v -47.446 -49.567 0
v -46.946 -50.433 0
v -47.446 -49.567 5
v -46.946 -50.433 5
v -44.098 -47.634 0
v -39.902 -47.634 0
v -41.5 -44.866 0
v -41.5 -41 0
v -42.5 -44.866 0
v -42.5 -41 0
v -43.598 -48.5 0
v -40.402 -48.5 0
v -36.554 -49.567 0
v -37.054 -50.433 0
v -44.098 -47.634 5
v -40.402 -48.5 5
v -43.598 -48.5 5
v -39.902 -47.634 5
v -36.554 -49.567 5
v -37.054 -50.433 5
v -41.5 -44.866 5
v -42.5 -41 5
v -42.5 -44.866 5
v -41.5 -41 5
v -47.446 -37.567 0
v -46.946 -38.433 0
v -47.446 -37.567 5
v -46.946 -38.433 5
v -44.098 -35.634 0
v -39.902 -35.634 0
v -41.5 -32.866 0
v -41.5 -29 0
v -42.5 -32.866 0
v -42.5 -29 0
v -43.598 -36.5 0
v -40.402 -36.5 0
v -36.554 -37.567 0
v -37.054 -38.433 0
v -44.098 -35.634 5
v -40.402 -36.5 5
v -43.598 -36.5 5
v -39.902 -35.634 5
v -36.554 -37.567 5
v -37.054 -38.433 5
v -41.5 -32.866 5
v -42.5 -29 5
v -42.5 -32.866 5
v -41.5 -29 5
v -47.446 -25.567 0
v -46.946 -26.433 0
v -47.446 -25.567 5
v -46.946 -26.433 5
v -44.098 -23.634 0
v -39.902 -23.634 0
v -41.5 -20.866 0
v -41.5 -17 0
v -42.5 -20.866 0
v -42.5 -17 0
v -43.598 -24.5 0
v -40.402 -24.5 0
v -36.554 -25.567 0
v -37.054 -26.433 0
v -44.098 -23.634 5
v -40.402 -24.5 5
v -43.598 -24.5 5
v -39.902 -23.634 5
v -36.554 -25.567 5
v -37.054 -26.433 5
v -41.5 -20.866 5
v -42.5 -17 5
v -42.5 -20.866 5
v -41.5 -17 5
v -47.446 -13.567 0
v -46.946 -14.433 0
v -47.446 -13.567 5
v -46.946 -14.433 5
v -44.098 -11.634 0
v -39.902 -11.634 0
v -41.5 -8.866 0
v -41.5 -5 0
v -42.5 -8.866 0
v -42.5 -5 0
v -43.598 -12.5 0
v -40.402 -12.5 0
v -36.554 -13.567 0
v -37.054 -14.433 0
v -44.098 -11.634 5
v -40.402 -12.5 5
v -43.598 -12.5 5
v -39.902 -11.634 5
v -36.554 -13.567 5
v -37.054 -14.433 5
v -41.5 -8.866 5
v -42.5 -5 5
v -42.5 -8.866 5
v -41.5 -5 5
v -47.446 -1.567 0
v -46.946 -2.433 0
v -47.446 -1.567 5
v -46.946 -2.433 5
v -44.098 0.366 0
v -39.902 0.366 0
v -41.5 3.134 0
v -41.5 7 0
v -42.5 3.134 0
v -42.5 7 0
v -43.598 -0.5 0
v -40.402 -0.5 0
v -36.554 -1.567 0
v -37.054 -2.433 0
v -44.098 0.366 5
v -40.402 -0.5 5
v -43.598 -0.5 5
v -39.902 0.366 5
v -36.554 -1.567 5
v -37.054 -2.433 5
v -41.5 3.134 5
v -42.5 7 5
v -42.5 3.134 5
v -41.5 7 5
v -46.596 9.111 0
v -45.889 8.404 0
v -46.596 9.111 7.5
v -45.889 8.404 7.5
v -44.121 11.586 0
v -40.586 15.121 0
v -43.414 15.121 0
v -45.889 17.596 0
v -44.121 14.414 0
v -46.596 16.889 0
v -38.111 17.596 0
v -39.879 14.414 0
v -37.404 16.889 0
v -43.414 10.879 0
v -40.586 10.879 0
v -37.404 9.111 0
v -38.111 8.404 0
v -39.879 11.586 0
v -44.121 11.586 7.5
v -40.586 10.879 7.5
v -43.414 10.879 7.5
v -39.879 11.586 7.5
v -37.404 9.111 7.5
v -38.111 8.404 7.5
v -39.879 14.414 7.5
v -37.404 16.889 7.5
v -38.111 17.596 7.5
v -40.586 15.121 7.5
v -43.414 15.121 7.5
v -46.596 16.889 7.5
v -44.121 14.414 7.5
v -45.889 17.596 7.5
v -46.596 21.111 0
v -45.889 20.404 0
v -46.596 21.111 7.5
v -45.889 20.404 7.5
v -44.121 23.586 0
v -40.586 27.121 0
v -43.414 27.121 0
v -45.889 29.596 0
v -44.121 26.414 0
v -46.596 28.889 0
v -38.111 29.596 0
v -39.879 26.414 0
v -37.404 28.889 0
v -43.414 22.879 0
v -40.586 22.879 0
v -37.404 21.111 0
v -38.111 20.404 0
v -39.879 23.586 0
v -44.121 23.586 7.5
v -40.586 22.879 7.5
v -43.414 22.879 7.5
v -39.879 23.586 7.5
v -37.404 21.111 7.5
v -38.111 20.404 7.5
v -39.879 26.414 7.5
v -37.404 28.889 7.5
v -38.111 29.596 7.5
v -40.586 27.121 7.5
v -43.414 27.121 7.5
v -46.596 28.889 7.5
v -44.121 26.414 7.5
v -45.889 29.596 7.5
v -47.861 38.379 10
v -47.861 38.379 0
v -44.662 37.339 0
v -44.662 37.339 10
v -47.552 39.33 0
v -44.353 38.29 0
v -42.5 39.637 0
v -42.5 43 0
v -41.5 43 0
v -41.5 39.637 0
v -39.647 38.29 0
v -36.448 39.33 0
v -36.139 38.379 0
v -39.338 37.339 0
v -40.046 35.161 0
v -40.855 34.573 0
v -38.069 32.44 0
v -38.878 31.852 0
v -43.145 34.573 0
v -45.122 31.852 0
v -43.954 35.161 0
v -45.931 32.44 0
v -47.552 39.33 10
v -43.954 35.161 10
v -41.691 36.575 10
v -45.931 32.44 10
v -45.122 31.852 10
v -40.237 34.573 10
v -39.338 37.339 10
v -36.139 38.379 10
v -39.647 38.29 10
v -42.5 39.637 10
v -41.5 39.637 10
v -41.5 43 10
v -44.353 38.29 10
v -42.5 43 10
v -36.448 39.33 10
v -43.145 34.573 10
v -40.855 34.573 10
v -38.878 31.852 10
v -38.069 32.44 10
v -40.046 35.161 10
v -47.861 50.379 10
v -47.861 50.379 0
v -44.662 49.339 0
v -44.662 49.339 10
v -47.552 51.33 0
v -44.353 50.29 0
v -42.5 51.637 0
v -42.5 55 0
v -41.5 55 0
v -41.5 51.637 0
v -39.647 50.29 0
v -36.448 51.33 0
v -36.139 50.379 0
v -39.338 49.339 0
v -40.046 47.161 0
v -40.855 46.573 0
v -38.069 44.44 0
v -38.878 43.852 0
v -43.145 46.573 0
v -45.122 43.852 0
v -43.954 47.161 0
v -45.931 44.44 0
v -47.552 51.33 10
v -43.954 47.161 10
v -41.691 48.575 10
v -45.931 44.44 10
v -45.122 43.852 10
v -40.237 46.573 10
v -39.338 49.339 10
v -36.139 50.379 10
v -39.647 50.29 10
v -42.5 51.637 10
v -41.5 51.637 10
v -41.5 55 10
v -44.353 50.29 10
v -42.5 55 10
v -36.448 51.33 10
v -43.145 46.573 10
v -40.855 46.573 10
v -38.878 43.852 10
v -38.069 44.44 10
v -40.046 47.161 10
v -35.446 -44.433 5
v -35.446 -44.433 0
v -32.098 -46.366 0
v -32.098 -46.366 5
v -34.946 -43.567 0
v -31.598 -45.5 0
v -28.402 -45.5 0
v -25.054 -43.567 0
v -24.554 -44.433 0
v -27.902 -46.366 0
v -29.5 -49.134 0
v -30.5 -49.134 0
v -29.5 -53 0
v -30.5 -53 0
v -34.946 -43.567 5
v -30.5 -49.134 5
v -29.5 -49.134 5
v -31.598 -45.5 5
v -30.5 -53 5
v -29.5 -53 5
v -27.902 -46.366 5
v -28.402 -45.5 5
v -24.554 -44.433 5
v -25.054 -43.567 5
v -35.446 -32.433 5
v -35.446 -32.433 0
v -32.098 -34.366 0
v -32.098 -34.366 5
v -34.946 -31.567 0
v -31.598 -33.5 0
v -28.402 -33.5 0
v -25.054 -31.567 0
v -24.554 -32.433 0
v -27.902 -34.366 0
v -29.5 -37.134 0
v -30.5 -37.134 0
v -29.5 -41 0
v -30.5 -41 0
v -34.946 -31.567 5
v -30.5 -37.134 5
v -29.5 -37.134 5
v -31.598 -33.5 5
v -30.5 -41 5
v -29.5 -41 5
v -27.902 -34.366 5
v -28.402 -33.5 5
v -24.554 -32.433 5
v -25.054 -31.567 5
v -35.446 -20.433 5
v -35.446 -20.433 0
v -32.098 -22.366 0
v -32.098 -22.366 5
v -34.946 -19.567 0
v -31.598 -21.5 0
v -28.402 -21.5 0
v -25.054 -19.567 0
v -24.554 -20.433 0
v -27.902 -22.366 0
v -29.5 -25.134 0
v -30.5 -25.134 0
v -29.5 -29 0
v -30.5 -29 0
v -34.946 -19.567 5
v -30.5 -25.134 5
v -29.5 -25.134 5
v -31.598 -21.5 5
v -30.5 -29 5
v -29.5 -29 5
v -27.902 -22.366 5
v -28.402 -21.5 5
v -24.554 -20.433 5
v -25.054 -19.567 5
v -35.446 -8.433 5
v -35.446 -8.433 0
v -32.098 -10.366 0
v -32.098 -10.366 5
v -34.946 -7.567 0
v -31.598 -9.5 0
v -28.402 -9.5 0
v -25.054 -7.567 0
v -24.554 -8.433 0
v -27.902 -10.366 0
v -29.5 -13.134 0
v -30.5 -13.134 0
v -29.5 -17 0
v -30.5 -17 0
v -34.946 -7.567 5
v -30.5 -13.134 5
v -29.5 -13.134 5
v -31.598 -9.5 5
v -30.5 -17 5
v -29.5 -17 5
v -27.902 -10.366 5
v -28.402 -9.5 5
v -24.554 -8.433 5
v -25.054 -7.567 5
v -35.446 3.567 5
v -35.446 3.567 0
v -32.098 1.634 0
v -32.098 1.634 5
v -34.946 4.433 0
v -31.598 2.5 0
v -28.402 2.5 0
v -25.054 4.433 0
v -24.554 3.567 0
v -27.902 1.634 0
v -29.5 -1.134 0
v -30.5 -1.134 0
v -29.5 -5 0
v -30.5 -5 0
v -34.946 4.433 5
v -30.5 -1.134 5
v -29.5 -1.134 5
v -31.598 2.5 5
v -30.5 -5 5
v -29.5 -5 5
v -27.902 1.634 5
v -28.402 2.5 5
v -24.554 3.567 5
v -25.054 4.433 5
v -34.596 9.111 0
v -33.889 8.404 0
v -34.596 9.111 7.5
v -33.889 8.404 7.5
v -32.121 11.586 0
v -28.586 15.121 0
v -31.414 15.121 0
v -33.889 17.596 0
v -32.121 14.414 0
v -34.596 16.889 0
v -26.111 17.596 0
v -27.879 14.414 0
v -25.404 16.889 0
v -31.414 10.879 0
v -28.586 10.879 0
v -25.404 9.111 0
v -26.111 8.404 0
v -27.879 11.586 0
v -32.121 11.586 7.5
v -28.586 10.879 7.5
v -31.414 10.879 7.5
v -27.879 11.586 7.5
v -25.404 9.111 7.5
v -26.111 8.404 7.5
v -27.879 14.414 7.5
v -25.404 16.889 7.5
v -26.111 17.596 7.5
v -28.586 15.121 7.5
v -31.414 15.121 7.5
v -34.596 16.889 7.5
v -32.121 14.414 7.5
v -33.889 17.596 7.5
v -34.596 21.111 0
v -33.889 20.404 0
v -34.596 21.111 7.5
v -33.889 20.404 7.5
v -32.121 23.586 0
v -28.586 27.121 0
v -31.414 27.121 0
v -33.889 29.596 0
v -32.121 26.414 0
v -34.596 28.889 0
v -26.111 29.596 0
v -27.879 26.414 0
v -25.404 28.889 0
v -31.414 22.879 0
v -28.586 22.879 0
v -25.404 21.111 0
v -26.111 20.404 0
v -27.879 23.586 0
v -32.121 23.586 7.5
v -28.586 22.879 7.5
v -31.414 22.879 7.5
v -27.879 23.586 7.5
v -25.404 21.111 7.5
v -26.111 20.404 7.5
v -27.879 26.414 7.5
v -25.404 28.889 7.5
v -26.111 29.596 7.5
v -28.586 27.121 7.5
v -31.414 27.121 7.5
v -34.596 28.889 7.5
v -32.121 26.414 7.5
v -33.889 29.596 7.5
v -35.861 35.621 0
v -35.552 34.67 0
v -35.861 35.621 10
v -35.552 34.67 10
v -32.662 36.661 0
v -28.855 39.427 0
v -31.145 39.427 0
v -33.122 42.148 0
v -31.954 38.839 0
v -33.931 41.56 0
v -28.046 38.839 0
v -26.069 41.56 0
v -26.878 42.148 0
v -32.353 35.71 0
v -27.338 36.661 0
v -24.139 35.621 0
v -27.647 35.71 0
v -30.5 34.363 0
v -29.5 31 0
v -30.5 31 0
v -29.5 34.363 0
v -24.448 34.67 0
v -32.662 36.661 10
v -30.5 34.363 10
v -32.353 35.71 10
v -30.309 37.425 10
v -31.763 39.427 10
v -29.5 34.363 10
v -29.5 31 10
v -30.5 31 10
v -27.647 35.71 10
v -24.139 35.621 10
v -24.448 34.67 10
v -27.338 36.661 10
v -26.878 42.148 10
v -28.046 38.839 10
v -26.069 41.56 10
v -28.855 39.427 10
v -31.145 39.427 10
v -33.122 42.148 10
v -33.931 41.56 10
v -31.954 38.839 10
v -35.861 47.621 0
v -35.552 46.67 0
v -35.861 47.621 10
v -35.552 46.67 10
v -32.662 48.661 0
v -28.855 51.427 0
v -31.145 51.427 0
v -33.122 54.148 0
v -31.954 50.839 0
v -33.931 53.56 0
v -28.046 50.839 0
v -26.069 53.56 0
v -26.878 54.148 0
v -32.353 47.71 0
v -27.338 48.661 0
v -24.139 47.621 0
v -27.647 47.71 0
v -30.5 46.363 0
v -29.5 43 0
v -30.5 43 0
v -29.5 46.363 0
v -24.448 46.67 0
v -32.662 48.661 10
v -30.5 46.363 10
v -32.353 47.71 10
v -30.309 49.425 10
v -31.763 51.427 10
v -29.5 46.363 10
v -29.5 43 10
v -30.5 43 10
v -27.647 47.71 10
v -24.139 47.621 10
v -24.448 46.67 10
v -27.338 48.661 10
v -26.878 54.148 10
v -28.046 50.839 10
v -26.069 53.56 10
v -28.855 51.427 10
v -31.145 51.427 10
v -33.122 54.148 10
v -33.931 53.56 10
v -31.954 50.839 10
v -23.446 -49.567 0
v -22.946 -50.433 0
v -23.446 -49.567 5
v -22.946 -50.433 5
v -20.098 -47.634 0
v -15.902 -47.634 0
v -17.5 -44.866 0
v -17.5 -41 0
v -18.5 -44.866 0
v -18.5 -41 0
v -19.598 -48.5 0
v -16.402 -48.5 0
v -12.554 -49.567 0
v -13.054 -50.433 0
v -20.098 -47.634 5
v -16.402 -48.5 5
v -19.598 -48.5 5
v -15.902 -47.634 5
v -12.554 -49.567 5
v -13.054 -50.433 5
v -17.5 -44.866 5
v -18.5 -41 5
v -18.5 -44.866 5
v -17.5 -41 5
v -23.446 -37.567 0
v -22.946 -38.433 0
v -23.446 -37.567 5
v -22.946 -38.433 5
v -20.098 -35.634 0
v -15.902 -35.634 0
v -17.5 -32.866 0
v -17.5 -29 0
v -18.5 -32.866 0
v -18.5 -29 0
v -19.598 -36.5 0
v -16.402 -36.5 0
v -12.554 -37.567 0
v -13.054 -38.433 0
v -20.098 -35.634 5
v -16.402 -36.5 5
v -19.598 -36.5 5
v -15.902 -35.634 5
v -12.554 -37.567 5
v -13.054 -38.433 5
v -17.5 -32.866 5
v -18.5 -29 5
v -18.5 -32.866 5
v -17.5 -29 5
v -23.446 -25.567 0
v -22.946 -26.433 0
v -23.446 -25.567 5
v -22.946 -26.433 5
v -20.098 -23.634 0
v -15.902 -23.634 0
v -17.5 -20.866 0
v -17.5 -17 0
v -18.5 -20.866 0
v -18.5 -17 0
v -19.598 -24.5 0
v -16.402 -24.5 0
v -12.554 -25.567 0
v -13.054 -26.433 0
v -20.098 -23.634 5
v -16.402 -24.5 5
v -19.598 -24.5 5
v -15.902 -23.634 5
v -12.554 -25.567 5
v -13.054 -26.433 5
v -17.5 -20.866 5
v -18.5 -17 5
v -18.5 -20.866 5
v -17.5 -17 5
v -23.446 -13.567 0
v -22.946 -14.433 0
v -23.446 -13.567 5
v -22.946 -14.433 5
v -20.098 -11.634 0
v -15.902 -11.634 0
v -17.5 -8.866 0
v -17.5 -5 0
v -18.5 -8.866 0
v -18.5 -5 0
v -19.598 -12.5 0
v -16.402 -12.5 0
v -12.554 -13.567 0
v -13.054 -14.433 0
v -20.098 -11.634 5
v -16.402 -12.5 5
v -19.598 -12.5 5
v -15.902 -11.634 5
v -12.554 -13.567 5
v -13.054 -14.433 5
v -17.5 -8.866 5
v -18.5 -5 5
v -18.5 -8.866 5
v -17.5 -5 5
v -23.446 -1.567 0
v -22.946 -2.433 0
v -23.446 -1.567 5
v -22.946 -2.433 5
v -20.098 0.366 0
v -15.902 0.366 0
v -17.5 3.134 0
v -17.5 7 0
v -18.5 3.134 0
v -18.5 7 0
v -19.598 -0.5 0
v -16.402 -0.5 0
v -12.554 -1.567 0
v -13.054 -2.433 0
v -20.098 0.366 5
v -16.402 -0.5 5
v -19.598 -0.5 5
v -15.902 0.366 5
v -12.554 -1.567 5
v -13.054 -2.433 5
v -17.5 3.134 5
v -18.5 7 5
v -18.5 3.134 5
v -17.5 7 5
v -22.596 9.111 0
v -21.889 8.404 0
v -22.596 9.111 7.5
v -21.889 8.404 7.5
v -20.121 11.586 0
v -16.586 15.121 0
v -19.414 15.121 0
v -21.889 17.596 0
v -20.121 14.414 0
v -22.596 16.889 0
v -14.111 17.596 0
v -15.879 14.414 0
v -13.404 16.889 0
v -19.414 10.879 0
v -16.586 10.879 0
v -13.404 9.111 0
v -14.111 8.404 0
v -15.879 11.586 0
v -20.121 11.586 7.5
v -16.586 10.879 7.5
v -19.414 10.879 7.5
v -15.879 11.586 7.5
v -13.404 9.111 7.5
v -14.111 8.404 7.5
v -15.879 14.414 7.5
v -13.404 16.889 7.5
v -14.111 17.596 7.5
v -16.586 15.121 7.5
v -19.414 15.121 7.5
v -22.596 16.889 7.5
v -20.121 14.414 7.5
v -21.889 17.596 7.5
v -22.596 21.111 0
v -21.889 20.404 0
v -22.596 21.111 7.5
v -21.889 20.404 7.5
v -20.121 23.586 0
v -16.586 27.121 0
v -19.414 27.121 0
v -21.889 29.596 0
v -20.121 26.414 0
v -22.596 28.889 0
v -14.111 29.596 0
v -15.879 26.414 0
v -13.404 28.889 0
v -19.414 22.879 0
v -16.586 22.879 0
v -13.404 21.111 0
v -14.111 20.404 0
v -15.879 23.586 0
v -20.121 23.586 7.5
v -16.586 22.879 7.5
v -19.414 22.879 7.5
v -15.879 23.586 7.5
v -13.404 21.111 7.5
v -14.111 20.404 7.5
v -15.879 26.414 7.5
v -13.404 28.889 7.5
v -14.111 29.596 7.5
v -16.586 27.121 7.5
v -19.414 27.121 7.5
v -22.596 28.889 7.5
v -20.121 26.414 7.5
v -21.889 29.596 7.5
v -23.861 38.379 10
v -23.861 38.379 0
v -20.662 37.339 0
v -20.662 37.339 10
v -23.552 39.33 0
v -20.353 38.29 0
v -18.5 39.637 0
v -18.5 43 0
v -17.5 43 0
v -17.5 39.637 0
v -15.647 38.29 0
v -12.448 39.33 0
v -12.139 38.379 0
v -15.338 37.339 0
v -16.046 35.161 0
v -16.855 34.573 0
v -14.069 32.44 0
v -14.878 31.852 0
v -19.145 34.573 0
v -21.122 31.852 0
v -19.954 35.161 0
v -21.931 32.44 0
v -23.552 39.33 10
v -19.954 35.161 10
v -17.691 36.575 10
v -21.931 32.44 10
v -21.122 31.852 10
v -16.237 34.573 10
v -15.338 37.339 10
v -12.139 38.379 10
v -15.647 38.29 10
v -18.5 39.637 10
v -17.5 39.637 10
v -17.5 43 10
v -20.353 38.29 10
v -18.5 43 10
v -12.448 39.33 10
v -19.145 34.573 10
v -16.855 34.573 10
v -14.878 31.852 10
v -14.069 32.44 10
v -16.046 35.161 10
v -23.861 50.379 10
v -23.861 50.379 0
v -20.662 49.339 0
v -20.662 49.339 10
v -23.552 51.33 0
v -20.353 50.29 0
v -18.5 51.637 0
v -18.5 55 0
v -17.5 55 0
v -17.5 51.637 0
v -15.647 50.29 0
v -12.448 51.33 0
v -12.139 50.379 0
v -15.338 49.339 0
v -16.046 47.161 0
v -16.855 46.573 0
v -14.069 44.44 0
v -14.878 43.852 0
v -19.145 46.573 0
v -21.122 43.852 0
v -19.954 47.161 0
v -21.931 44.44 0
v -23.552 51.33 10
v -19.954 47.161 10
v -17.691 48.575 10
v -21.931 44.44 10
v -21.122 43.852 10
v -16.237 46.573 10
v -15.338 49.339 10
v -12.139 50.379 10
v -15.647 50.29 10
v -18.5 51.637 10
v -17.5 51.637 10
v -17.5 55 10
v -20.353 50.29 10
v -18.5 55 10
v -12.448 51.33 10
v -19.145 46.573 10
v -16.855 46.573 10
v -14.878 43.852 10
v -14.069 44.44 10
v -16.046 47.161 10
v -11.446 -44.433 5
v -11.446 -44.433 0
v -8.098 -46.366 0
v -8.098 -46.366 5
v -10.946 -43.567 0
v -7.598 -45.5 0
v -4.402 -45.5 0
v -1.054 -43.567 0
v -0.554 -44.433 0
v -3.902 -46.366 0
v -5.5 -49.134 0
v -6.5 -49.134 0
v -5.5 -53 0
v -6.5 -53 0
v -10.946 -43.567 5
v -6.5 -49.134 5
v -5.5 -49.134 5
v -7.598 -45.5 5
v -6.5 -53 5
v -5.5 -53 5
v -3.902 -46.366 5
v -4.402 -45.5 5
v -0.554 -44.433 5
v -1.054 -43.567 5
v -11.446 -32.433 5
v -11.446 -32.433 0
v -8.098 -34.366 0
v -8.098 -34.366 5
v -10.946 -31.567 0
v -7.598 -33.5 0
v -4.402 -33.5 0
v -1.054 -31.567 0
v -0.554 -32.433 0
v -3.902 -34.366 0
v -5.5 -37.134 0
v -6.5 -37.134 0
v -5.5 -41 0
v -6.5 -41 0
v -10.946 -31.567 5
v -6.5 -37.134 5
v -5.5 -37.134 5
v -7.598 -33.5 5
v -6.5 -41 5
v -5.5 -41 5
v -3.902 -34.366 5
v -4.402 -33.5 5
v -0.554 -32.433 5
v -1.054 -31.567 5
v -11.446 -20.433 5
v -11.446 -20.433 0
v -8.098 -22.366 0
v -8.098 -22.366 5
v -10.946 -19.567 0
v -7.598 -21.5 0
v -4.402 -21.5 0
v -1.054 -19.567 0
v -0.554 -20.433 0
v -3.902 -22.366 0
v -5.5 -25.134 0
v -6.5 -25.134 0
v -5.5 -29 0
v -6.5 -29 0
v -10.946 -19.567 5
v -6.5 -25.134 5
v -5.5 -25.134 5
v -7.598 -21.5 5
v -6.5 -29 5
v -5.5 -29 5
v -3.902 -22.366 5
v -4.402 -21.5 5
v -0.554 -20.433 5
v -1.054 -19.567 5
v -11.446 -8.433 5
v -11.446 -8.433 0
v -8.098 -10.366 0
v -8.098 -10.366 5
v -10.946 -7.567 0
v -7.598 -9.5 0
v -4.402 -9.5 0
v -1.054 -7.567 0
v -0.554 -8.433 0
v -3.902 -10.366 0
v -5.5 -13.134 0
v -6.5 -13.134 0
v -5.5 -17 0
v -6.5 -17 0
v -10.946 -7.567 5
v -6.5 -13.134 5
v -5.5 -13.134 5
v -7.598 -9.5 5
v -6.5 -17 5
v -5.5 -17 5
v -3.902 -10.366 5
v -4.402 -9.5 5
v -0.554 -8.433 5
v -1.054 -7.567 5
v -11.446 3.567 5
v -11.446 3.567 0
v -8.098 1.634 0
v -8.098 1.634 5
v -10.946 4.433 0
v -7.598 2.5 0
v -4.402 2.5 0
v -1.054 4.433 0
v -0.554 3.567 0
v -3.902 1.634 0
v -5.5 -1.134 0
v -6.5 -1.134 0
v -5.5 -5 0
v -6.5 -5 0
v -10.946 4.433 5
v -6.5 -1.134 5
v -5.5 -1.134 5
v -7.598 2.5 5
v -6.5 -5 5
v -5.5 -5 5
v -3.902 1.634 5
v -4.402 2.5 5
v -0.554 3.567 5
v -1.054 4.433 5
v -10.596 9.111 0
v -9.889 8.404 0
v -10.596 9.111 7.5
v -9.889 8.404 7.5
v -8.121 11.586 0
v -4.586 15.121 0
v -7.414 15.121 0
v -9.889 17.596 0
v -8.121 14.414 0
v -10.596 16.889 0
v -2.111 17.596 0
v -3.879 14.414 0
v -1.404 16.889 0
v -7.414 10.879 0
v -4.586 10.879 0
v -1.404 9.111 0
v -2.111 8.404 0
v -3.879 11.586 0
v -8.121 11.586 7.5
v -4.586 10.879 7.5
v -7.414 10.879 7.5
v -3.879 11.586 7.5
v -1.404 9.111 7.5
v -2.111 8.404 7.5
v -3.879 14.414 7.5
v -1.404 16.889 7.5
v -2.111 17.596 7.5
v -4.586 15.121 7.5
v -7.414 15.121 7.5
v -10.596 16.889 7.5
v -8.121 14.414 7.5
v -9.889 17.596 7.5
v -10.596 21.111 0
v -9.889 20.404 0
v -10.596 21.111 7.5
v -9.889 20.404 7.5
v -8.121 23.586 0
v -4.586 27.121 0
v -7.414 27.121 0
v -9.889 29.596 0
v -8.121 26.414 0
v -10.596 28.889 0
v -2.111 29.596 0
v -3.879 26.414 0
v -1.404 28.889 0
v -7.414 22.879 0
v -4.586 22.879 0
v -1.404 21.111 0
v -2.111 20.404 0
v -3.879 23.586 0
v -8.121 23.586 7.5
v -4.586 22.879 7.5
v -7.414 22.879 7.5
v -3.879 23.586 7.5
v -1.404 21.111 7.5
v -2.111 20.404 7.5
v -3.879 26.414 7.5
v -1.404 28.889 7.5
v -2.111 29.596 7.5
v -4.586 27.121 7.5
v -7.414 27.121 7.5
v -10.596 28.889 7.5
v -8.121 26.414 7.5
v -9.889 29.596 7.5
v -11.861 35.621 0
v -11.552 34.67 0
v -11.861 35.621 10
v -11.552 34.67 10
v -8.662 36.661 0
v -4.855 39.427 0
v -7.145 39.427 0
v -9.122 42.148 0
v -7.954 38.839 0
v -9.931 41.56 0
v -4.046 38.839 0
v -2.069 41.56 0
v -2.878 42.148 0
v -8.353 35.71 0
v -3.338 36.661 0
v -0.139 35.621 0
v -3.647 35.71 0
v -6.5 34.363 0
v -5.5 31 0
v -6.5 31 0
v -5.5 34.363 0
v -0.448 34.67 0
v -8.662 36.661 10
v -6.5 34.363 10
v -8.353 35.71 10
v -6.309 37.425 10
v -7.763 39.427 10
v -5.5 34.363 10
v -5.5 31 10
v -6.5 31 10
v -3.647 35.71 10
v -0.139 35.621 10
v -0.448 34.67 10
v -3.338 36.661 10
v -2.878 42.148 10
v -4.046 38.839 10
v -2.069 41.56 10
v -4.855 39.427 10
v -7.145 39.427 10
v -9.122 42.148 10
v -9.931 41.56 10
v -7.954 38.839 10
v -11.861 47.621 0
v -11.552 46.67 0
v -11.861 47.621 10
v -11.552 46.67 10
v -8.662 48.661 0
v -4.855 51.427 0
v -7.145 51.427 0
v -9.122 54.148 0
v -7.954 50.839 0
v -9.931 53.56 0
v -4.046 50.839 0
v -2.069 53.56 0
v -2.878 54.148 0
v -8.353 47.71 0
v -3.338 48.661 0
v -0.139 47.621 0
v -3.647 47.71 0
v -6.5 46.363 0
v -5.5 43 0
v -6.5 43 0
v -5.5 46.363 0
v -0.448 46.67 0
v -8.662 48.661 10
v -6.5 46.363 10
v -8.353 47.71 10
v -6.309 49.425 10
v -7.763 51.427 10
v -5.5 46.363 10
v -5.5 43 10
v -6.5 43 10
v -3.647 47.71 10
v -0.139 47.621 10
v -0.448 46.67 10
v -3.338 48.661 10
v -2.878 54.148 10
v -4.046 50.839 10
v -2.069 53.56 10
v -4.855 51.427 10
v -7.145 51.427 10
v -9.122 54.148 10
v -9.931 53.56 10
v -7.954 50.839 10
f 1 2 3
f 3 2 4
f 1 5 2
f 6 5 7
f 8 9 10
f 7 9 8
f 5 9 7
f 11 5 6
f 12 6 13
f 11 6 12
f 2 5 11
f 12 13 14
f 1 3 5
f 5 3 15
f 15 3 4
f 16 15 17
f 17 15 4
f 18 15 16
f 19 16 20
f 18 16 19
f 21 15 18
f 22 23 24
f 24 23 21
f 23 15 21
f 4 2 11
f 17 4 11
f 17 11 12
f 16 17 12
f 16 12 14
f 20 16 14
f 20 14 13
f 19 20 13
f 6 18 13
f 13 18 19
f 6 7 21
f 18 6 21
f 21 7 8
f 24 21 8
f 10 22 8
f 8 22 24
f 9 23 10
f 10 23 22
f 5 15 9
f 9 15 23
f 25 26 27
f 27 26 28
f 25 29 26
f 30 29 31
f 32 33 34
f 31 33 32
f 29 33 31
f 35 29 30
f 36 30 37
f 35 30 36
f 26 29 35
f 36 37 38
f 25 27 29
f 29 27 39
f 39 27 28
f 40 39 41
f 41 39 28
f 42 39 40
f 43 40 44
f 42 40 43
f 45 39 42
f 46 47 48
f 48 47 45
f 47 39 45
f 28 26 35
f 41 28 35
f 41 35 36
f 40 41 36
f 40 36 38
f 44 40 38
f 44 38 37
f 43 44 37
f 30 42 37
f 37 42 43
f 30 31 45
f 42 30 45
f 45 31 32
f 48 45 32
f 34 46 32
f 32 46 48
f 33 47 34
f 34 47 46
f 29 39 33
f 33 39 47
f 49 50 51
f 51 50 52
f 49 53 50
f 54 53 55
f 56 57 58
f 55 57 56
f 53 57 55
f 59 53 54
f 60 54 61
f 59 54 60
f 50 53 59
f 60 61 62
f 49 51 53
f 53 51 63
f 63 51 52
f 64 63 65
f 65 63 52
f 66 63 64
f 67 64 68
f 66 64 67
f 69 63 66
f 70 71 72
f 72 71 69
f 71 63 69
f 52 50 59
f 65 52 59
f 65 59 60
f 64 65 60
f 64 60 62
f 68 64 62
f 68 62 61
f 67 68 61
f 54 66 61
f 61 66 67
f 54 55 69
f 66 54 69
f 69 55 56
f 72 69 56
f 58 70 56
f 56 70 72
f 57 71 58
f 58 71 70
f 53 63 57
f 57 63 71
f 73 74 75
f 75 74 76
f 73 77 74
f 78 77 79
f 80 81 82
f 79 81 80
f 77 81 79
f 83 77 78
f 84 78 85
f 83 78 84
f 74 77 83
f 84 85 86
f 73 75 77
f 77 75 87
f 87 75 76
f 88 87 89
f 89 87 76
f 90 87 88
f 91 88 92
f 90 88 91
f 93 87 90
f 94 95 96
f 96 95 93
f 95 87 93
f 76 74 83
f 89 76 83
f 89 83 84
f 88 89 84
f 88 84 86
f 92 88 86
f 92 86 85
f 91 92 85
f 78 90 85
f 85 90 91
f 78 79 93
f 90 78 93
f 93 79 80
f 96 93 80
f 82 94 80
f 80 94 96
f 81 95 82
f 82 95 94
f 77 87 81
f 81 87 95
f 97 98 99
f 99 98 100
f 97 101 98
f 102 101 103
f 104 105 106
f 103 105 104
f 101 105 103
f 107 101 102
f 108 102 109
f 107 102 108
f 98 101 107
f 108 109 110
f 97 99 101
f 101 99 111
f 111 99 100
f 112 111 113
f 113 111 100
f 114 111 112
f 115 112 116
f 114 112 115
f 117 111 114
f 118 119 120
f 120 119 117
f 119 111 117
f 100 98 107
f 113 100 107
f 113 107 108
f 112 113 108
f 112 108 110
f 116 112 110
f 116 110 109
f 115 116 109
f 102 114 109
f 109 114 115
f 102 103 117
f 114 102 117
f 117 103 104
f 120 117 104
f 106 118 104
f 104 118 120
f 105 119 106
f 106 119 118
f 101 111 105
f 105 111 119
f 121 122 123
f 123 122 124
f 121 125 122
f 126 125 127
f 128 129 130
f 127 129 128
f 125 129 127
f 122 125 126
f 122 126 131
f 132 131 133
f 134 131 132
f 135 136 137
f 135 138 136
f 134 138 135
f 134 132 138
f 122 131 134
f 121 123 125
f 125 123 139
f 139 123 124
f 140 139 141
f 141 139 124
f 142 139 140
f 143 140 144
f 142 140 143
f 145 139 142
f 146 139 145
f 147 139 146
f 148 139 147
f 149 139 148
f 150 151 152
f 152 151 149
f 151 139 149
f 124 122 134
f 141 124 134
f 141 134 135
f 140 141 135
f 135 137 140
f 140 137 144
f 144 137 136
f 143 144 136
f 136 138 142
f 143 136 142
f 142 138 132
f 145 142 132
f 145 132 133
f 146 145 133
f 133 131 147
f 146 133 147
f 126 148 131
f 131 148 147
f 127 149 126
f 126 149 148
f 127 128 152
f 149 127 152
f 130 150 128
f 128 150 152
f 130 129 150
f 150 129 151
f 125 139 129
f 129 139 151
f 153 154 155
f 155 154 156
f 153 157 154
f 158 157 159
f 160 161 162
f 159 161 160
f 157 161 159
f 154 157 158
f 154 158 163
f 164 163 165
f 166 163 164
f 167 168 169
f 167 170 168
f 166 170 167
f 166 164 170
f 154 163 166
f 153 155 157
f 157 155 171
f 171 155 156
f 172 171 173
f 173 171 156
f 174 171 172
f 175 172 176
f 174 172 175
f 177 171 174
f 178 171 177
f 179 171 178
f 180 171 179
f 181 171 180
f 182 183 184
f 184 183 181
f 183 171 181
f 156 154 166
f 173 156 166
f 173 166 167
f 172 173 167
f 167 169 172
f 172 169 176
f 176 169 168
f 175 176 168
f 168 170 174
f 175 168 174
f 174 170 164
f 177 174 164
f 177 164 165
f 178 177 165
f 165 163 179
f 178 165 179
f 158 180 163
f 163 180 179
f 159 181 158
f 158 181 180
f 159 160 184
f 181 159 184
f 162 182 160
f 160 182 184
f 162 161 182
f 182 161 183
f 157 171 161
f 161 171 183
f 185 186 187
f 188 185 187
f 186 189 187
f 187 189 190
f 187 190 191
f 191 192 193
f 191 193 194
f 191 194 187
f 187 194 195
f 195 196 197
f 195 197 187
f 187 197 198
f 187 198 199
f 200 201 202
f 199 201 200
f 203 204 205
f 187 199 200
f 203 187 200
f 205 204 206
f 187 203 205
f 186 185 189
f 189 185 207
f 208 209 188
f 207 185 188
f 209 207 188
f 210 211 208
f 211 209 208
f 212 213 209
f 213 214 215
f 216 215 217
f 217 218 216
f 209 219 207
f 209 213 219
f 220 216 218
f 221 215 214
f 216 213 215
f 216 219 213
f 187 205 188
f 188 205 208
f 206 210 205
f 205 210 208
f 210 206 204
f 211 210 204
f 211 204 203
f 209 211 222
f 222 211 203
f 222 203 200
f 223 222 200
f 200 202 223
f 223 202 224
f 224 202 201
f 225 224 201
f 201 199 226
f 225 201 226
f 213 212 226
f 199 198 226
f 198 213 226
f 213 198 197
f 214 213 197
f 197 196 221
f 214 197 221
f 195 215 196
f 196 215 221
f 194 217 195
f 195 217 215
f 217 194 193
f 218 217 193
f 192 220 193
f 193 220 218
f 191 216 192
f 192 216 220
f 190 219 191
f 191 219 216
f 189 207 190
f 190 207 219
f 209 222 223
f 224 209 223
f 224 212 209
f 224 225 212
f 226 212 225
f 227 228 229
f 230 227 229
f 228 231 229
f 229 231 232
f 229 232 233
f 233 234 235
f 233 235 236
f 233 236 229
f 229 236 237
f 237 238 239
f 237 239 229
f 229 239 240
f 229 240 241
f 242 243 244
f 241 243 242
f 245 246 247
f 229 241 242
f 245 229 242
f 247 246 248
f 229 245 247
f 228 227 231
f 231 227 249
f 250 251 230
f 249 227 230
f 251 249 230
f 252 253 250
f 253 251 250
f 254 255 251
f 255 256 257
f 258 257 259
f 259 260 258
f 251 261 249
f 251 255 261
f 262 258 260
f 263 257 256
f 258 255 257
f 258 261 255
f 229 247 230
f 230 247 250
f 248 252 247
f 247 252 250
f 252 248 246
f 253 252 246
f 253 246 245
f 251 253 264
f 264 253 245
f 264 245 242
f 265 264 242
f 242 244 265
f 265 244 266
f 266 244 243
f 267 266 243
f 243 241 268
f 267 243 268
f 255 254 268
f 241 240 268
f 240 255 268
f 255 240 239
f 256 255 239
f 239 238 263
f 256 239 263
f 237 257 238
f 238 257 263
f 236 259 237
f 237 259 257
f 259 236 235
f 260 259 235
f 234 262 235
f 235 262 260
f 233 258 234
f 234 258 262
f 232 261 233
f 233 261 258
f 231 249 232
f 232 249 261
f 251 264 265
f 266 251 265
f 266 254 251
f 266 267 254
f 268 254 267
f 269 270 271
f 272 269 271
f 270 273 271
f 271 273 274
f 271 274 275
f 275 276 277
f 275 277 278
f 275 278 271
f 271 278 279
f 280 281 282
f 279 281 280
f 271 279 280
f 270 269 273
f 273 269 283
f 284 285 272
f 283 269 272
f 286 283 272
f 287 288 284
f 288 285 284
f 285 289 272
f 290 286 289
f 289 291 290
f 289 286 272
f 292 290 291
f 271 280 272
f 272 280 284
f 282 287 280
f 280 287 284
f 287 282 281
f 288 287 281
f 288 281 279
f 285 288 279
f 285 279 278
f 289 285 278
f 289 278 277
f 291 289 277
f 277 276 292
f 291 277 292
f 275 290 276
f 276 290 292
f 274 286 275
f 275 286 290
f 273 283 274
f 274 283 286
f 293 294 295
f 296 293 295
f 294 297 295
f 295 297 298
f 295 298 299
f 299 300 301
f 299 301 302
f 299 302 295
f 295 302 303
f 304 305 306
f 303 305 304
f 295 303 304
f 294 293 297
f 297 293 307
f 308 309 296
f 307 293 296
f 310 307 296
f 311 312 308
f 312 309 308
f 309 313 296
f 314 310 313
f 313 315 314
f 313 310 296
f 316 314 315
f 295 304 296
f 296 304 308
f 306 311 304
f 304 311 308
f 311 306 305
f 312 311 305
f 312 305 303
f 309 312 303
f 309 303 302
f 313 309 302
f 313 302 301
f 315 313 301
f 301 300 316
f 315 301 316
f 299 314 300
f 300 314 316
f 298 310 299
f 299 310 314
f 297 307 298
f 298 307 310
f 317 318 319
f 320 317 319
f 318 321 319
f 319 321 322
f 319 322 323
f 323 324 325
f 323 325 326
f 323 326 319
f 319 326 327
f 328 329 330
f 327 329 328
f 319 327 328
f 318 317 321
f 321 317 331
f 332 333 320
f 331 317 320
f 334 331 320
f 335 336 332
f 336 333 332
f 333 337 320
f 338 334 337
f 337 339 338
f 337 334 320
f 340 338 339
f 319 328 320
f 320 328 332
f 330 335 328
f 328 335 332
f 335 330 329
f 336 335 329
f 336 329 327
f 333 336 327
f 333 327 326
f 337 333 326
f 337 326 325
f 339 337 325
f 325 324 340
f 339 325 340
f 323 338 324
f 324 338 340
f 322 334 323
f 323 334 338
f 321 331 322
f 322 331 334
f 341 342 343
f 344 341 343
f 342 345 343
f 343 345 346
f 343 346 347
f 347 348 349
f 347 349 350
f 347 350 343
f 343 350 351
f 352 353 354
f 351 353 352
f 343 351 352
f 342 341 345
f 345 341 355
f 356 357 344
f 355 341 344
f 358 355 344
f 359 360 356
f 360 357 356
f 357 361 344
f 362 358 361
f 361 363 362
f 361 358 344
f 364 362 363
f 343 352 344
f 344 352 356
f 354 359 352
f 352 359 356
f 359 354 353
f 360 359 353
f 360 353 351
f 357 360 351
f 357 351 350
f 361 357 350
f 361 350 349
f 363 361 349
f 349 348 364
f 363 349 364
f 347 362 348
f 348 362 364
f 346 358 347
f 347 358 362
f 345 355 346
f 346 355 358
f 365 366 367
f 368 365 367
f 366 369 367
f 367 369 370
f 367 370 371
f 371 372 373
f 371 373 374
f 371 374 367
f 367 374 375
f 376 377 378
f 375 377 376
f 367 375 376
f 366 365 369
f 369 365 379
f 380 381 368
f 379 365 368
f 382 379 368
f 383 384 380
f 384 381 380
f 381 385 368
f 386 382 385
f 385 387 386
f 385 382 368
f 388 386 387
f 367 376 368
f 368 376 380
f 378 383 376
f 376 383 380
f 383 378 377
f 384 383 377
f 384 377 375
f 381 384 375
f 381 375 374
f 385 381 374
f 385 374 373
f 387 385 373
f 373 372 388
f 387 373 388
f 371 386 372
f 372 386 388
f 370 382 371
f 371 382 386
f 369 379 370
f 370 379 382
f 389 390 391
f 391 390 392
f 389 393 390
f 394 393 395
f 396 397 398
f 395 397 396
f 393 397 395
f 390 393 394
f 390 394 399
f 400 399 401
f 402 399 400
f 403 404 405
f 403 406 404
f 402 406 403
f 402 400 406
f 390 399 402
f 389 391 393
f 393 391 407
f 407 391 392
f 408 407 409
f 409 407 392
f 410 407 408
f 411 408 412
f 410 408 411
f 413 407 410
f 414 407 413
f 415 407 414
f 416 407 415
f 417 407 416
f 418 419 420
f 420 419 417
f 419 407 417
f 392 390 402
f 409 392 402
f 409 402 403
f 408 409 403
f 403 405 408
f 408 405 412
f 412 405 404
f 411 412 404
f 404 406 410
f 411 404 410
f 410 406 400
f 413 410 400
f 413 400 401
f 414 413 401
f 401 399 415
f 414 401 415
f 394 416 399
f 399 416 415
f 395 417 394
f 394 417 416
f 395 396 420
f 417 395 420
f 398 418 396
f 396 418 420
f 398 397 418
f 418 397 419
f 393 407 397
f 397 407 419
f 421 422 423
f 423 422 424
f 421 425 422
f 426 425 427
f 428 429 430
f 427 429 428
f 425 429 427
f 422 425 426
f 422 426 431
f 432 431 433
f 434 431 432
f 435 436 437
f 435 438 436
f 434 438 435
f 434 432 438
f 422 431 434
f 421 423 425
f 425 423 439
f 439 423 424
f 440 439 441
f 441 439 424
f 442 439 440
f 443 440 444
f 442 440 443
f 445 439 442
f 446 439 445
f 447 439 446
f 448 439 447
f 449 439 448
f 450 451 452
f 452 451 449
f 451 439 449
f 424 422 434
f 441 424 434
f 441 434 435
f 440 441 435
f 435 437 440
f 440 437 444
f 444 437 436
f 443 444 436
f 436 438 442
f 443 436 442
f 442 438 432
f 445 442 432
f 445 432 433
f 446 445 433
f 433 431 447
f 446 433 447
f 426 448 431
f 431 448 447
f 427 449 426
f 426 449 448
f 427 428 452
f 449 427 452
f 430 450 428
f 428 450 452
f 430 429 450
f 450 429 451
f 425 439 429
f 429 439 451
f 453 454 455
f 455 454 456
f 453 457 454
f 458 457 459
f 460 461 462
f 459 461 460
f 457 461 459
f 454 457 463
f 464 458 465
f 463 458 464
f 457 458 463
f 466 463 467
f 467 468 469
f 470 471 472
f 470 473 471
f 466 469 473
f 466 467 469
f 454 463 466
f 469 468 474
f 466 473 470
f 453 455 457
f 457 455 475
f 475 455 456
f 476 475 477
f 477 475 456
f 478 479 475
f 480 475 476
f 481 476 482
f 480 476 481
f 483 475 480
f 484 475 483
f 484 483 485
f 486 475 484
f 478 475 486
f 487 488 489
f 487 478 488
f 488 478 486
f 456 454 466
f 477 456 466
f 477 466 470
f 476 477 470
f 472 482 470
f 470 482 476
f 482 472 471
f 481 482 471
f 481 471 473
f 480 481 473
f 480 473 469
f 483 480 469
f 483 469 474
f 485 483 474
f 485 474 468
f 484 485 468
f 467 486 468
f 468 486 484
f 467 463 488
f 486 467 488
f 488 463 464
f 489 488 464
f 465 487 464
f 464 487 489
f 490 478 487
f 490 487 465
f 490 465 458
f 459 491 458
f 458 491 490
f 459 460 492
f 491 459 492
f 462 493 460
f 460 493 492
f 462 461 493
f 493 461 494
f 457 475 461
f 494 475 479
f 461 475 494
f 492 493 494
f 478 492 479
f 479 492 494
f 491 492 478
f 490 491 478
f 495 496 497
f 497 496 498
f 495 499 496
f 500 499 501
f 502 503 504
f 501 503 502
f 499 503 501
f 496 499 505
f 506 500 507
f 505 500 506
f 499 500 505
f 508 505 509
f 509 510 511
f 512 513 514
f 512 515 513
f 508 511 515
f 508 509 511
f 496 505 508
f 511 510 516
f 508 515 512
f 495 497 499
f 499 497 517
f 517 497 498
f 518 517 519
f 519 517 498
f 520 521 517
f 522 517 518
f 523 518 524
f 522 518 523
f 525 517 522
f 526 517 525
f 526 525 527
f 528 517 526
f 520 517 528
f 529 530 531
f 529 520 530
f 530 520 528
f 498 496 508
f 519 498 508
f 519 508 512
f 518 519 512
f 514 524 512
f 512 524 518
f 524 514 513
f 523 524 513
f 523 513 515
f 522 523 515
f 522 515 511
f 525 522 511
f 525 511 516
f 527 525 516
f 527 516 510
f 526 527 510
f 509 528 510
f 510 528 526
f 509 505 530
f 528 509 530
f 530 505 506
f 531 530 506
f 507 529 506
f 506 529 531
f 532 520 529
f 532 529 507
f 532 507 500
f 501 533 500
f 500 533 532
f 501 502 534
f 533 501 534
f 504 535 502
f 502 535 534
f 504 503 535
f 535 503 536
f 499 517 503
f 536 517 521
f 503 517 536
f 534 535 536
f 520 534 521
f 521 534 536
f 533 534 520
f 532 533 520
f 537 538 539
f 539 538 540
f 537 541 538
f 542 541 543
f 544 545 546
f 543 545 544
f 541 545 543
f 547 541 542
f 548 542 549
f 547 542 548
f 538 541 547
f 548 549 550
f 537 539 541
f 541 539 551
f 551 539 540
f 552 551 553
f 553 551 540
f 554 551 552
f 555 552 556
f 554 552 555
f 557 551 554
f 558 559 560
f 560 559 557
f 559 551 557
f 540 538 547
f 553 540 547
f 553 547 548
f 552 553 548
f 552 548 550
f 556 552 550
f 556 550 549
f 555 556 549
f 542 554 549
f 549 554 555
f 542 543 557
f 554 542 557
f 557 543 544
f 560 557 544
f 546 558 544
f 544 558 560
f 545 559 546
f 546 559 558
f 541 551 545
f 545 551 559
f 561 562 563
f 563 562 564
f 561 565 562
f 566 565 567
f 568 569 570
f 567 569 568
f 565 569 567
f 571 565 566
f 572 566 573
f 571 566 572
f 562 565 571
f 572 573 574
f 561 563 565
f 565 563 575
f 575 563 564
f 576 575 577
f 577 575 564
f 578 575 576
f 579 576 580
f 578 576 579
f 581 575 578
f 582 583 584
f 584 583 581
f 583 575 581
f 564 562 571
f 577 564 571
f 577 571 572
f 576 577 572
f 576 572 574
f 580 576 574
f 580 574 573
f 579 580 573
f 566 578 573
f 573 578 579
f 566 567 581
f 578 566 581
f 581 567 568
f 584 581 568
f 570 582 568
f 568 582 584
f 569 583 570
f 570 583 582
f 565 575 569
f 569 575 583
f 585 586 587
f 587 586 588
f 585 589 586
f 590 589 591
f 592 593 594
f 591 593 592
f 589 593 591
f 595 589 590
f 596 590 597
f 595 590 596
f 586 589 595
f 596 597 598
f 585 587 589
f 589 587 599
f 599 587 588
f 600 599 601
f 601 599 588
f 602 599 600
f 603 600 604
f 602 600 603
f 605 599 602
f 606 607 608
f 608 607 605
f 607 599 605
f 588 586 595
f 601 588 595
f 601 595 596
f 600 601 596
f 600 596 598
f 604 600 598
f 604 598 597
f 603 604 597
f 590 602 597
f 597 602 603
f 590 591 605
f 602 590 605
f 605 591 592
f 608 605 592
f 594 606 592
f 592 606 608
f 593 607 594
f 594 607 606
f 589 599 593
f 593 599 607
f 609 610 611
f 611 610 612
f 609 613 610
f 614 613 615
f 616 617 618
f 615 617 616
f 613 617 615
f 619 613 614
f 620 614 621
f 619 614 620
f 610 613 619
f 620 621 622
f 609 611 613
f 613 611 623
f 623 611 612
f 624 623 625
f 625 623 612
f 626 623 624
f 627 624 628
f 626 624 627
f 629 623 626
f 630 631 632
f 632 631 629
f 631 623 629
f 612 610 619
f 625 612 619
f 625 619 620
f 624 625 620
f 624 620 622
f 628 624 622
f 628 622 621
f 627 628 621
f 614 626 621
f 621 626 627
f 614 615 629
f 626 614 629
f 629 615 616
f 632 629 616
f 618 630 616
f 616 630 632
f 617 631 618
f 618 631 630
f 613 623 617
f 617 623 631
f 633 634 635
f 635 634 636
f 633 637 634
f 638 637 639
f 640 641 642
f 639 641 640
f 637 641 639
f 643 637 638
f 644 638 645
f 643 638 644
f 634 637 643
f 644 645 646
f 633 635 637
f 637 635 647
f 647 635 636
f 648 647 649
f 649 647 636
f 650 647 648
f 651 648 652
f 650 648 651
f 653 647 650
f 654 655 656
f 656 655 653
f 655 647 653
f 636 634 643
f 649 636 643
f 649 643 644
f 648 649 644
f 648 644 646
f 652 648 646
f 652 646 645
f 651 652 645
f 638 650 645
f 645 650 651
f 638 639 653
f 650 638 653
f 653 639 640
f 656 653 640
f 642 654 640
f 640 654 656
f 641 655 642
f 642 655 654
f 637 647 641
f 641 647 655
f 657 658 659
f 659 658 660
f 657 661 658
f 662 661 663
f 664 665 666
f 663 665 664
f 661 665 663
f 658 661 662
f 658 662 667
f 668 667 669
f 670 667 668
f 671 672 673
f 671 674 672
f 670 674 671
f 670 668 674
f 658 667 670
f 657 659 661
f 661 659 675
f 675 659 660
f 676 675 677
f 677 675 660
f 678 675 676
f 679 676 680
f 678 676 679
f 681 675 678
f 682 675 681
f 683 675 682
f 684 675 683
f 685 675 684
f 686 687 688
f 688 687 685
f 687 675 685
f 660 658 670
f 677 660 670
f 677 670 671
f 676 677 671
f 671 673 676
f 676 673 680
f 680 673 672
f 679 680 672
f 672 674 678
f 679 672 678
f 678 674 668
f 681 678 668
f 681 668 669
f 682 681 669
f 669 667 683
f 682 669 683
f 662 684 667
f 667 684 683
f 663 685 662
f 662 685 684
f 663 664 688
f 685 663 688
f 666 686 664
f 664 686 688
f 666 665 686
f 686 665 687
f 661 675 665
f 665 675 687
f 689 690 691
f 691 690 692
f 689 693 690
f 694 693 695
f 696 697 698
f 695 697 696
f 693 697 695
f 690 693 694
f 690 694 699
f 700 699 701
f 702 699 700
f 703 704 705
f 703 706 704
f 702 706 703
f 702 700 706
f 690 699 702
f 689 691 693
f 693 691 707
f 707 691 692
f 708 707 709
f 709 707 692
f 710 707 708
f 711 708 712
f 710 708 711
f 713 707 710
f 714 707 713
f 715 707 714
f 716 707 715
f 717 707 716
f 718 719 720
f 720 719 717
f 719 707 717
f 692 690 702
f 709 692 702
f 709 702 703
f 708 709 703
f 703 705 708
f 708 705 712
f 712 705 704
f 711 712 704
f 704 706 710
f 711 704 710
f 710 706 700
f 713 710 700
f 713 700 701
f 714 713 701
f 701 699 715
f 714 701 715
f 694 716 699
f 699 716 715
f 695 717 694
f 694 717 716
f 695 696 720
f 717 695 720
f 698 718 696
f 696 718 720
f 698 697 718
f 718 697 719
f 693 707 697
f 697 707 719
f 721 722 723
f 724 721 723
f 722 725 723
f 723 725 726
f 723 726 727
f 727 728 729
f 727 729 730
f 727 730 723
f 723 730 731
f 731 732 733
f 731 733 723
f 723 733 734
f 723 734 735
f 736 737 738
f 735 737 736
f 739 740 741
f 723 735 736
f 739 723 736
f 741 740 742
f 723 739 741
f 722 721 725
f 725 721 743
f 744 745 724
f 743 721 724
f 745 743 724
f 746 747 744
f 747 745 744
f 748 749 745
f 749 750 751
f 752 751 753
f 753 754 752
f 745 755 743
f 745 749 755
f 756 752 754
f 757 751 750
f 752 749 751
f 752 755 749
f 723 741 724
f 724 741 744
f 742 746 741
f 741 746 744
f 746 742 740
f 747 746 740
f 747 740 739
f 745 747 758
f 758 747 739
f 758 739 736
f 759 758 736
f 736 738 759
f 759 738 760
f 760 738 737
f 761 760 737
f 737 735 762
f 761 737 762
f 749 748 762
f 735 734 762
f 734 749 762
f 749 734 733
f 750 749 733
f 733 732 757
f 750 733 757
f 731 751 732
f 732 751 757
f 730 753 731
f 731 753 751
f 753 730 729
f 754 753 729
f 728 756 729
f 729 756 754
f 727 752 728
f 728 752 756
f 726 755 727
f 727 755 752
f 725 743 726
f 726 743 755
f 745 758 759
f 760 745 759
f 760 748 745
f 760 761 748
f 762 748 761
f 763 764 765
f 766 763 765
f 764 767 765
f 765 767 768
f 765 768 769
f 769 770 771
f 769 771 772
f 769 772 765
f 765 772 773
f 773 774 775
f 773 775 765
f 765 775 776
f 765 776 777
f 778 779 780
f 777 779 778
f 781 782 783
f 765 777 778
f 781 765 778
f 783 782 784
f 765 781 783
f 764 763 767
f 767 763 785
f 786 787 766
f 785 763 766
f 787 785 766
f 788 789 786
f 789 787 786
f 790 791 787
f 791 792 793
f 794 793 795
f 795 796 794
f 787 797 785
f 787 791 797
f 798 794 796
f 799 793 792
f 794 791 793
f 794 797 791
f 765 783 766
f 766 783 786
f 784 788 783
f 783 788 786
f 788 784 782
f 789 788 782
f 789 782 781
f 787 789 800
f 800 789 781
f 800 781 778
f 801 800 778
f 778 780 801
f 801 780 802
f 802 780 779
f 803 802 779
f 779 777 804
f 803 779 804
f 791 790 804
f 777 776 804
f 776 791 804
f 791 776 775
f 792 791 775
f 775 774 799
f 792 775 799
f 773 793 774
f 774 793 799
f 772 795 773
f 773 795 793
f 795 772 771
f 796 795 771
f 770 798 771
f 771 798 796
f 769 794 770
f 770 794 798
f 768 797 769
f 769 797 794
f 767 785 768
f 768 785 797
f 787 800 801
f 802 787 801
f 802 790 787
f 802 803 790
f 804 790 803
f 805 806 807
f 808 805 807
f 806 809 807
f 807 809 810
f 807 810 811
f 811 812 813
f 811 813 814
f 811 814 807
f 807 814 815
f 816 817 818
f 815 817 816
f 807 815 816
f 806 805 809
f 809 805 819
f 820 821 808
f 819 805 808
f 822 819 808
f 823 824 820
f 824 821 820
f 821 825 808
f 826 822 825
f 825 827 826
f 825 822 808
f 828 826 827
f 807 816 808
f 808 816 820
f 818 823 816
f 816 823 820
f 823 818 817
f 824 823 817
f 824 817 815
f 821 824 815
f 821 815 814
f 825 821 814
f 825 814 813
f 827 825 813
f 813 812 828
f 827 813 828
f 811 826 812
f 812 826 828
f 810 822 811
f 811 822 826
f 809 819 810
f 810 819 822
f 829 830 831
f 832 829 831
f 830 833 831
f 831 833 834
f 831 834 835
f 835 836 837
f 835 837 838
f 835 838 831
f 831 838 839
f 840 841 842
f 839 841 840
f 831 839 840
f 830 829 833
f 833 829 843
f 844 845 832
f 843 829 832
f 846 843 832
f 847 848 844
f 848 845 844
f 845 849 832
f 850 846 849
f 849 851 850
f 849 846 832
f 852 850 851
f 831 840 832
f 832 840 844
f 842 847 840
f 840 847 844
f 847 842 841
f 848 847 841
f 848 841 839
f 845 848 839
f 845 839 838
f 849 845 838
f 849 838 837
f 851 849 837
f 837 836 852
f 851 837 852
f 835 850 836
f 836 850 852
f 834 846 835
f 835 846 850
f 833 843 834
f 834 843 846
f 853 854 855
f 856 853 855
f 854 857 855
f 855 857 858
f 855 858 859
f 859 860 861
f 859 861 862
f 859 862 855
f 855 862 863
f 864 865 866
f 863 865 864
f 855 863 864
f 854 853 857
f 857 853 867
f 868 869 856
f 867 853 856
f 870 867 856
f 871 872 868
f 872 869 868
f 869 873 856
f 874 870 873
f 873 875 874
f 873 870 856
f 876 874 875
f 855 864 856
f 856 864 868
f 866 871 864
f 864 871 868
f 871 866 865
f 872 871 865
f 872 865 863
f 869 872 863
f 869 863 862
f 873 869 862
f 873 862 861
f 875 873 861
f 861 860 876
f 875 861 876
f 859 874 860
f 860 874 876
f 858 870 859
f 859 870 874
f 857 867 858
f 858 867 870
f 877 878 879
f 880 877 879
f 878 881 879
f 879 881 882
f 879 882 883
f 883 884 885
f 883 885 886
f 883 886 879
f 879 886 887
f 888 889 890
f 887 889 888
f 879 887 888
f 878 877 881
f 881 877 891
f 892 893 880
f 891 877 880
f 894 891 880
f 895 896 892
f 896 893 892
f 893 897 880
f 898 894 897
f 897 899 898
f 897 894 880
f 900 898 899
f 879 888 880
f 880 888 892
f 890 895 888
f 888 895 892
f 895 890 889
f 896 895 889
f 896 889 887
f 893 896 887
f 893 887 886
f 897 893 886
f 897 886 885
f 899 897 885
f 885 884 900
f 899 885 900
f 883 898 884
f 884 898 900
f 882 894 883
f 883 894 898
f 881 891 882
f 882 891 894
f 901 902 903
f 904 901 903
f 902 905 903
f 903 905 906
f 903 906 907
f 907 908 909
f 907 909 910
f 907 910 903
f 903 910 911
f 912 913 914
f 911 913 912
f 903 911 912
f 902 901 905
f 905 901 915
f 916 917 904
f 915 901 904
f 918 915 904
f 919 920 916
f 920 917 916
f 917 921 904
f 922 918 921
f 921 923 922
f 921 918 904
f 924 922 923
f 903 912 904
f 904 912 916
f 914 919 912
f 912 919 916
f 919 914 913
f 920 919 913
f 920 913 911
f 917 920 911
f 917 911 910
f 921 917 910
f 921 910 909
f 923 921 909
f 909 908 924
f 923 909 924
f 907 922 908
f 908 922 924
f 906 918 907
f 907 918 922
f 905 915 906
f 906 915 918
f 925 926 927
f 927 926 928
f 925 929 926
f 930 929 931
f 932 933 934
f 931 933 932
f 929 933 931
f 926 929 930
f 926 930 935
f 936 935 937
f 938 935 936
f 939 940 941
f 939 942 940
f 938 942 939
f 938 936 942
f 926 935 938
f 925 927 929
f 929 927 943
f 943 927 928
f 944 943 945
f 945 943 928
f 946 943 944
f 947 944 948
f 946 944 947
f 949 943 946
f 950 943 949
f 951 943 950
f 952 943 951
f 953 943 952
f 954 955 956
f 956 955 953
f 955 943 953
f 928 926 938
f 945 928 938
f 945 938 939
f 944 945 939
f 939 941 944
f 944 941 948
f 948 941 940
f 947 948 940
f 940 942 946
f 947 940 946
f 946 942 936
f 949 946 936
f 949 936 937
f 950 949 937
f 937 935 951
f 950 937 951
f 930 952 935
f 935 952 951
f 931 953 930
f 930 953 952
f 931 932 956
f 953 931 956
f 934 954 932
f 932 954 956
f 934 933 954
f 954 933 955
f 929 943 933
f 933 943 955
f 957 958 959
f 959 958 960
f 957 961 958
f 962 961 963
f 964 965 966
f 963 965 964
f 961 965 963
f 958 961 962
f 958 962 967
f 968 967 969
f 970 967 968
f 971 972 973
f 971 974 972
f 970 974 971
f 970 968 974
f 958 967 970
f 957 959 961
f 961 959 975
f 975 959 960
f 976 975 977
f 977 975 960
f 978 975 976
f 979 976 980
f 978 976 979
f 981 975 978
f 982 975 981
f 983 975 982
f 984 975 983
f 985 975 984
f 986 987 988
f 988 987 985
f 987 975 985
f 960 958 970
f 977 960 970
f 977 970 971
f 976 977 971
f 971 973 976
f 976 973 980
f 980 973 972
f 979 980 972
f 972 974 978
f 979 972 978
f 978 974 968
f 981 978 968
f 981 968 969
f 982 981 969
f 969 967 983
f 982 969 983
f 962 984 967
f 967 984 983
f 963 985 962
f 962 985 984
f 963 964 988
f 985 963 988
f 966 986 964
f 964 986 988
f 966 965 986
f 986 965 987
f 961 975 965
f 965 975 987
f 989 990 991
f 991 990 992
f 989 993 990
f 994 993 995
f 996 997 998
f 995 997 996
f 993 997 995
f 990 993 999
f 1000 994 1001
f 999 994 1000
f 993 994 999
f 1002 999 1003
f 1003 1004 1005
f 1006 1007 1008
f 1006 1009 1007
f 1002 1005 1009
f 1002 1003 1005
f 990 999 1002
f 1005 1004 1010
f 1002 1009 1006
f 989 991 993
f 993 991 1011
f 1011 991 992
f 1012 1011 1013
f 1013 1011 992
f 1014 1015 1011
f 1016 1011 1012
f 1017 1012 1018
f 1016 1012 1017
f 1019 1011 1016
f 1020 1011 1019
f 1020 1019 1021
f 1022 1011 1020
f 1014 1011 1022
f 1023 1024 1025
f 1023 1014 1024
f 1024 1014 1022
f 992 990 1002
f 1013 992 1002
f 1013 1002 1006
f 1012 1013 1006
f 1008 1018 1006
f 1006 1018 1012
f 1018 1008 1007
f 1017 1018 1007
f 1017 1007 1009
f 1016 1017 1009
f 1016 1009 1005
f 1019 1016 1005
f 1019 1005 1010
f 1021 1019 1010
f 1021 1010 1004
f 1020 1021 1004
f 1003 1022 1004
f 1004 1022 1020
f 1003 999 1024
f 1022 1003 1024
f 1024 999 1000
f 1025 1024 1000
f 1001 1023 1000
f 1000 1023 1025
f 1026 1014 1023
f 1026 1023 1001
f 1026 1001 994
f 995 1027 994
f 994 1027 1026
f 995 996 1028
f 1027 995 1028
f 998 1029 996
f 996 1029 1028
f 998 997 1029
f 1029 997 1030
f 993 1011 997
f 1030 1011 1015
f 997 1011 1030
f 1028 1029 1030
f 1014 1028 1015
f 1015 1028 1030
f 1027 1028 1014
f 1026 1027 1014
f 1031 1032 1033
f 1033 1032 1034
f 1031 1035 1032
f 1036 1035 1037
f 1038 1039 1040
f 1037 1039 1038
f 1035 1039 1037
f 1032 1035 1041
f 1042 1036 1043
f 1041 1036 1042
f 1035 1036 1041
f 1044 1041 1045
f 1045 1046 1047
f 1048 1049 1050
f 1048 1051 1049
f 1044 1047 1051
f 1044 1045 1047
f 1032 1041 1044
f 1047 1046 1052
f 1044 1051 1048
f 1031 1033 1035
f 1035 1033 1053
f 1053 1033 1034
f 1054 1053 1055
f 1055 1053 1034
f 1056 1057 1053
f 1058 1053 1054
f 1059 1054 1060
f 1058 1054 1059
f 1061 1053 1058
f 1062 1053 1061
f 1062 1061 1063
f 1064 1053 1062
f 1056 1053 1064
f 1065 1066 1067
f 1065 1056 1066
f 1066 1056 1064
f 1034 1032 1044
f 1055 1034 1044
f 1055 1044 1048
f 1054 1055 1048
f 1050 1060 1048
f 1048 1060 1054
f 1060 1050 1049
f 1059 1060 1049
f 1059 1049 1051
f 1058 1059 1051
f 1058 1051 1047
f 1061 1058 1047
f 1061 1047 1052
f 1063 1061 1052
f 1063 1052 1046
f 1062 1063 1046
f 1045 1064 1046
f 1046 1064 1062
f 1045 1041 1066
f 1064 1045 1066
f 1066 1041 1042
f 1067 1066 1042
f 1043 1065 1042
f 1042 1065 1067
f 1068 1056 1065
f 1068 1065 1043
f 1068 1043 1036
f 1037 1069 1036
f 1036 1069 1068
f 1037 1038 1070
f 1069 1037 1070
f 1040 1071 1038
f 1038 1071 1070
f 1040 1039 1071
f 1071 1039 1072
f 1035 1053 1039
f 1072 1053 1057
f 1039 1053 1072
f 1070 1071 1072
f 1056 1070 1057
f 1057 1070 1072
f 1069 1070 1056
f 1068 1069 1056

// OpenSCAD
// file: risk_star_pieces.scad
w=1;
d=6;
s=d*2.1;
r=w*3;

h1=5;
h2=h1*1.5;
h3=h1*2;

module risk(points, h) {
	angle = 360/points;
	angle2 = angle/2;
	middle = w*(points/2);
	middle2 = middle/2;
	filler = d/2;
	x = sin(angle) * filler;
	y = cos(angle) * filler;
	for (i = [0:points - 1]) {
		rotate([0,0, angle*i])
		translate([-w/2,0,0])
		cube([w,d,h]);
		rotate([0,0,angle*i])
		polyhedron( [ [0,0,0], [0,filler,0],[x,y,0], [0,0,h], [0,filler,h],[x,y,h]],
				   [ [2,1,0], [3,4,5], [0,1,4], [0,4,3], [0,3,2], [2,3,5], [1,2,5],[1,5,4] ]);
	}
}


risk(3, h1);

translate([0,-s,0])
risk(4,h2);

translate([0,s,0])
risk(5,h3);
// main file
use <risk_star_pieces.scad>

v_single = 12;
h_single = 12;

h1 = 5;
h2 = h1 * 1.5;
h3 = h1 * 2;

translate([-50,-55,0])
translate([8,8,0])
for (i = [0:3])
{
	for (j = [0:4])
	{
		translate([i*v_single, j*h_single, 0])
		if (i % 2 == 1)
		{
			rotate([0,0,180])
			risk(3,h1);
		} else {
			risk(3,h1);
		}
	}

	for (j = [5:6])
	{
		translate([i*v_single, j*h_single, 0])
		rotate([0,0,45])
		risk(4,h2);
	}

	for (j = [7])
	{
		translate([i*v_single, j*h_single, 0])
		if ( i  < 4 )
		{
			if (i % 2 == 1)
			{
				rotate([0,0,180])
				risk(5, h3);
			} else {
				risk(5, h3);
			}				
		} else {
			rotate([0,0,45])
			risk(4,h2);
		}
	}

	for (j = [8])
	{
		translate([i*v_single, j*h_single, 0])
		if (i % 2 == 1)
		{
			rotate([0,0,180])
			risk(5, h3);
		} else {
			risk(5, h3);
		}
	}
}
